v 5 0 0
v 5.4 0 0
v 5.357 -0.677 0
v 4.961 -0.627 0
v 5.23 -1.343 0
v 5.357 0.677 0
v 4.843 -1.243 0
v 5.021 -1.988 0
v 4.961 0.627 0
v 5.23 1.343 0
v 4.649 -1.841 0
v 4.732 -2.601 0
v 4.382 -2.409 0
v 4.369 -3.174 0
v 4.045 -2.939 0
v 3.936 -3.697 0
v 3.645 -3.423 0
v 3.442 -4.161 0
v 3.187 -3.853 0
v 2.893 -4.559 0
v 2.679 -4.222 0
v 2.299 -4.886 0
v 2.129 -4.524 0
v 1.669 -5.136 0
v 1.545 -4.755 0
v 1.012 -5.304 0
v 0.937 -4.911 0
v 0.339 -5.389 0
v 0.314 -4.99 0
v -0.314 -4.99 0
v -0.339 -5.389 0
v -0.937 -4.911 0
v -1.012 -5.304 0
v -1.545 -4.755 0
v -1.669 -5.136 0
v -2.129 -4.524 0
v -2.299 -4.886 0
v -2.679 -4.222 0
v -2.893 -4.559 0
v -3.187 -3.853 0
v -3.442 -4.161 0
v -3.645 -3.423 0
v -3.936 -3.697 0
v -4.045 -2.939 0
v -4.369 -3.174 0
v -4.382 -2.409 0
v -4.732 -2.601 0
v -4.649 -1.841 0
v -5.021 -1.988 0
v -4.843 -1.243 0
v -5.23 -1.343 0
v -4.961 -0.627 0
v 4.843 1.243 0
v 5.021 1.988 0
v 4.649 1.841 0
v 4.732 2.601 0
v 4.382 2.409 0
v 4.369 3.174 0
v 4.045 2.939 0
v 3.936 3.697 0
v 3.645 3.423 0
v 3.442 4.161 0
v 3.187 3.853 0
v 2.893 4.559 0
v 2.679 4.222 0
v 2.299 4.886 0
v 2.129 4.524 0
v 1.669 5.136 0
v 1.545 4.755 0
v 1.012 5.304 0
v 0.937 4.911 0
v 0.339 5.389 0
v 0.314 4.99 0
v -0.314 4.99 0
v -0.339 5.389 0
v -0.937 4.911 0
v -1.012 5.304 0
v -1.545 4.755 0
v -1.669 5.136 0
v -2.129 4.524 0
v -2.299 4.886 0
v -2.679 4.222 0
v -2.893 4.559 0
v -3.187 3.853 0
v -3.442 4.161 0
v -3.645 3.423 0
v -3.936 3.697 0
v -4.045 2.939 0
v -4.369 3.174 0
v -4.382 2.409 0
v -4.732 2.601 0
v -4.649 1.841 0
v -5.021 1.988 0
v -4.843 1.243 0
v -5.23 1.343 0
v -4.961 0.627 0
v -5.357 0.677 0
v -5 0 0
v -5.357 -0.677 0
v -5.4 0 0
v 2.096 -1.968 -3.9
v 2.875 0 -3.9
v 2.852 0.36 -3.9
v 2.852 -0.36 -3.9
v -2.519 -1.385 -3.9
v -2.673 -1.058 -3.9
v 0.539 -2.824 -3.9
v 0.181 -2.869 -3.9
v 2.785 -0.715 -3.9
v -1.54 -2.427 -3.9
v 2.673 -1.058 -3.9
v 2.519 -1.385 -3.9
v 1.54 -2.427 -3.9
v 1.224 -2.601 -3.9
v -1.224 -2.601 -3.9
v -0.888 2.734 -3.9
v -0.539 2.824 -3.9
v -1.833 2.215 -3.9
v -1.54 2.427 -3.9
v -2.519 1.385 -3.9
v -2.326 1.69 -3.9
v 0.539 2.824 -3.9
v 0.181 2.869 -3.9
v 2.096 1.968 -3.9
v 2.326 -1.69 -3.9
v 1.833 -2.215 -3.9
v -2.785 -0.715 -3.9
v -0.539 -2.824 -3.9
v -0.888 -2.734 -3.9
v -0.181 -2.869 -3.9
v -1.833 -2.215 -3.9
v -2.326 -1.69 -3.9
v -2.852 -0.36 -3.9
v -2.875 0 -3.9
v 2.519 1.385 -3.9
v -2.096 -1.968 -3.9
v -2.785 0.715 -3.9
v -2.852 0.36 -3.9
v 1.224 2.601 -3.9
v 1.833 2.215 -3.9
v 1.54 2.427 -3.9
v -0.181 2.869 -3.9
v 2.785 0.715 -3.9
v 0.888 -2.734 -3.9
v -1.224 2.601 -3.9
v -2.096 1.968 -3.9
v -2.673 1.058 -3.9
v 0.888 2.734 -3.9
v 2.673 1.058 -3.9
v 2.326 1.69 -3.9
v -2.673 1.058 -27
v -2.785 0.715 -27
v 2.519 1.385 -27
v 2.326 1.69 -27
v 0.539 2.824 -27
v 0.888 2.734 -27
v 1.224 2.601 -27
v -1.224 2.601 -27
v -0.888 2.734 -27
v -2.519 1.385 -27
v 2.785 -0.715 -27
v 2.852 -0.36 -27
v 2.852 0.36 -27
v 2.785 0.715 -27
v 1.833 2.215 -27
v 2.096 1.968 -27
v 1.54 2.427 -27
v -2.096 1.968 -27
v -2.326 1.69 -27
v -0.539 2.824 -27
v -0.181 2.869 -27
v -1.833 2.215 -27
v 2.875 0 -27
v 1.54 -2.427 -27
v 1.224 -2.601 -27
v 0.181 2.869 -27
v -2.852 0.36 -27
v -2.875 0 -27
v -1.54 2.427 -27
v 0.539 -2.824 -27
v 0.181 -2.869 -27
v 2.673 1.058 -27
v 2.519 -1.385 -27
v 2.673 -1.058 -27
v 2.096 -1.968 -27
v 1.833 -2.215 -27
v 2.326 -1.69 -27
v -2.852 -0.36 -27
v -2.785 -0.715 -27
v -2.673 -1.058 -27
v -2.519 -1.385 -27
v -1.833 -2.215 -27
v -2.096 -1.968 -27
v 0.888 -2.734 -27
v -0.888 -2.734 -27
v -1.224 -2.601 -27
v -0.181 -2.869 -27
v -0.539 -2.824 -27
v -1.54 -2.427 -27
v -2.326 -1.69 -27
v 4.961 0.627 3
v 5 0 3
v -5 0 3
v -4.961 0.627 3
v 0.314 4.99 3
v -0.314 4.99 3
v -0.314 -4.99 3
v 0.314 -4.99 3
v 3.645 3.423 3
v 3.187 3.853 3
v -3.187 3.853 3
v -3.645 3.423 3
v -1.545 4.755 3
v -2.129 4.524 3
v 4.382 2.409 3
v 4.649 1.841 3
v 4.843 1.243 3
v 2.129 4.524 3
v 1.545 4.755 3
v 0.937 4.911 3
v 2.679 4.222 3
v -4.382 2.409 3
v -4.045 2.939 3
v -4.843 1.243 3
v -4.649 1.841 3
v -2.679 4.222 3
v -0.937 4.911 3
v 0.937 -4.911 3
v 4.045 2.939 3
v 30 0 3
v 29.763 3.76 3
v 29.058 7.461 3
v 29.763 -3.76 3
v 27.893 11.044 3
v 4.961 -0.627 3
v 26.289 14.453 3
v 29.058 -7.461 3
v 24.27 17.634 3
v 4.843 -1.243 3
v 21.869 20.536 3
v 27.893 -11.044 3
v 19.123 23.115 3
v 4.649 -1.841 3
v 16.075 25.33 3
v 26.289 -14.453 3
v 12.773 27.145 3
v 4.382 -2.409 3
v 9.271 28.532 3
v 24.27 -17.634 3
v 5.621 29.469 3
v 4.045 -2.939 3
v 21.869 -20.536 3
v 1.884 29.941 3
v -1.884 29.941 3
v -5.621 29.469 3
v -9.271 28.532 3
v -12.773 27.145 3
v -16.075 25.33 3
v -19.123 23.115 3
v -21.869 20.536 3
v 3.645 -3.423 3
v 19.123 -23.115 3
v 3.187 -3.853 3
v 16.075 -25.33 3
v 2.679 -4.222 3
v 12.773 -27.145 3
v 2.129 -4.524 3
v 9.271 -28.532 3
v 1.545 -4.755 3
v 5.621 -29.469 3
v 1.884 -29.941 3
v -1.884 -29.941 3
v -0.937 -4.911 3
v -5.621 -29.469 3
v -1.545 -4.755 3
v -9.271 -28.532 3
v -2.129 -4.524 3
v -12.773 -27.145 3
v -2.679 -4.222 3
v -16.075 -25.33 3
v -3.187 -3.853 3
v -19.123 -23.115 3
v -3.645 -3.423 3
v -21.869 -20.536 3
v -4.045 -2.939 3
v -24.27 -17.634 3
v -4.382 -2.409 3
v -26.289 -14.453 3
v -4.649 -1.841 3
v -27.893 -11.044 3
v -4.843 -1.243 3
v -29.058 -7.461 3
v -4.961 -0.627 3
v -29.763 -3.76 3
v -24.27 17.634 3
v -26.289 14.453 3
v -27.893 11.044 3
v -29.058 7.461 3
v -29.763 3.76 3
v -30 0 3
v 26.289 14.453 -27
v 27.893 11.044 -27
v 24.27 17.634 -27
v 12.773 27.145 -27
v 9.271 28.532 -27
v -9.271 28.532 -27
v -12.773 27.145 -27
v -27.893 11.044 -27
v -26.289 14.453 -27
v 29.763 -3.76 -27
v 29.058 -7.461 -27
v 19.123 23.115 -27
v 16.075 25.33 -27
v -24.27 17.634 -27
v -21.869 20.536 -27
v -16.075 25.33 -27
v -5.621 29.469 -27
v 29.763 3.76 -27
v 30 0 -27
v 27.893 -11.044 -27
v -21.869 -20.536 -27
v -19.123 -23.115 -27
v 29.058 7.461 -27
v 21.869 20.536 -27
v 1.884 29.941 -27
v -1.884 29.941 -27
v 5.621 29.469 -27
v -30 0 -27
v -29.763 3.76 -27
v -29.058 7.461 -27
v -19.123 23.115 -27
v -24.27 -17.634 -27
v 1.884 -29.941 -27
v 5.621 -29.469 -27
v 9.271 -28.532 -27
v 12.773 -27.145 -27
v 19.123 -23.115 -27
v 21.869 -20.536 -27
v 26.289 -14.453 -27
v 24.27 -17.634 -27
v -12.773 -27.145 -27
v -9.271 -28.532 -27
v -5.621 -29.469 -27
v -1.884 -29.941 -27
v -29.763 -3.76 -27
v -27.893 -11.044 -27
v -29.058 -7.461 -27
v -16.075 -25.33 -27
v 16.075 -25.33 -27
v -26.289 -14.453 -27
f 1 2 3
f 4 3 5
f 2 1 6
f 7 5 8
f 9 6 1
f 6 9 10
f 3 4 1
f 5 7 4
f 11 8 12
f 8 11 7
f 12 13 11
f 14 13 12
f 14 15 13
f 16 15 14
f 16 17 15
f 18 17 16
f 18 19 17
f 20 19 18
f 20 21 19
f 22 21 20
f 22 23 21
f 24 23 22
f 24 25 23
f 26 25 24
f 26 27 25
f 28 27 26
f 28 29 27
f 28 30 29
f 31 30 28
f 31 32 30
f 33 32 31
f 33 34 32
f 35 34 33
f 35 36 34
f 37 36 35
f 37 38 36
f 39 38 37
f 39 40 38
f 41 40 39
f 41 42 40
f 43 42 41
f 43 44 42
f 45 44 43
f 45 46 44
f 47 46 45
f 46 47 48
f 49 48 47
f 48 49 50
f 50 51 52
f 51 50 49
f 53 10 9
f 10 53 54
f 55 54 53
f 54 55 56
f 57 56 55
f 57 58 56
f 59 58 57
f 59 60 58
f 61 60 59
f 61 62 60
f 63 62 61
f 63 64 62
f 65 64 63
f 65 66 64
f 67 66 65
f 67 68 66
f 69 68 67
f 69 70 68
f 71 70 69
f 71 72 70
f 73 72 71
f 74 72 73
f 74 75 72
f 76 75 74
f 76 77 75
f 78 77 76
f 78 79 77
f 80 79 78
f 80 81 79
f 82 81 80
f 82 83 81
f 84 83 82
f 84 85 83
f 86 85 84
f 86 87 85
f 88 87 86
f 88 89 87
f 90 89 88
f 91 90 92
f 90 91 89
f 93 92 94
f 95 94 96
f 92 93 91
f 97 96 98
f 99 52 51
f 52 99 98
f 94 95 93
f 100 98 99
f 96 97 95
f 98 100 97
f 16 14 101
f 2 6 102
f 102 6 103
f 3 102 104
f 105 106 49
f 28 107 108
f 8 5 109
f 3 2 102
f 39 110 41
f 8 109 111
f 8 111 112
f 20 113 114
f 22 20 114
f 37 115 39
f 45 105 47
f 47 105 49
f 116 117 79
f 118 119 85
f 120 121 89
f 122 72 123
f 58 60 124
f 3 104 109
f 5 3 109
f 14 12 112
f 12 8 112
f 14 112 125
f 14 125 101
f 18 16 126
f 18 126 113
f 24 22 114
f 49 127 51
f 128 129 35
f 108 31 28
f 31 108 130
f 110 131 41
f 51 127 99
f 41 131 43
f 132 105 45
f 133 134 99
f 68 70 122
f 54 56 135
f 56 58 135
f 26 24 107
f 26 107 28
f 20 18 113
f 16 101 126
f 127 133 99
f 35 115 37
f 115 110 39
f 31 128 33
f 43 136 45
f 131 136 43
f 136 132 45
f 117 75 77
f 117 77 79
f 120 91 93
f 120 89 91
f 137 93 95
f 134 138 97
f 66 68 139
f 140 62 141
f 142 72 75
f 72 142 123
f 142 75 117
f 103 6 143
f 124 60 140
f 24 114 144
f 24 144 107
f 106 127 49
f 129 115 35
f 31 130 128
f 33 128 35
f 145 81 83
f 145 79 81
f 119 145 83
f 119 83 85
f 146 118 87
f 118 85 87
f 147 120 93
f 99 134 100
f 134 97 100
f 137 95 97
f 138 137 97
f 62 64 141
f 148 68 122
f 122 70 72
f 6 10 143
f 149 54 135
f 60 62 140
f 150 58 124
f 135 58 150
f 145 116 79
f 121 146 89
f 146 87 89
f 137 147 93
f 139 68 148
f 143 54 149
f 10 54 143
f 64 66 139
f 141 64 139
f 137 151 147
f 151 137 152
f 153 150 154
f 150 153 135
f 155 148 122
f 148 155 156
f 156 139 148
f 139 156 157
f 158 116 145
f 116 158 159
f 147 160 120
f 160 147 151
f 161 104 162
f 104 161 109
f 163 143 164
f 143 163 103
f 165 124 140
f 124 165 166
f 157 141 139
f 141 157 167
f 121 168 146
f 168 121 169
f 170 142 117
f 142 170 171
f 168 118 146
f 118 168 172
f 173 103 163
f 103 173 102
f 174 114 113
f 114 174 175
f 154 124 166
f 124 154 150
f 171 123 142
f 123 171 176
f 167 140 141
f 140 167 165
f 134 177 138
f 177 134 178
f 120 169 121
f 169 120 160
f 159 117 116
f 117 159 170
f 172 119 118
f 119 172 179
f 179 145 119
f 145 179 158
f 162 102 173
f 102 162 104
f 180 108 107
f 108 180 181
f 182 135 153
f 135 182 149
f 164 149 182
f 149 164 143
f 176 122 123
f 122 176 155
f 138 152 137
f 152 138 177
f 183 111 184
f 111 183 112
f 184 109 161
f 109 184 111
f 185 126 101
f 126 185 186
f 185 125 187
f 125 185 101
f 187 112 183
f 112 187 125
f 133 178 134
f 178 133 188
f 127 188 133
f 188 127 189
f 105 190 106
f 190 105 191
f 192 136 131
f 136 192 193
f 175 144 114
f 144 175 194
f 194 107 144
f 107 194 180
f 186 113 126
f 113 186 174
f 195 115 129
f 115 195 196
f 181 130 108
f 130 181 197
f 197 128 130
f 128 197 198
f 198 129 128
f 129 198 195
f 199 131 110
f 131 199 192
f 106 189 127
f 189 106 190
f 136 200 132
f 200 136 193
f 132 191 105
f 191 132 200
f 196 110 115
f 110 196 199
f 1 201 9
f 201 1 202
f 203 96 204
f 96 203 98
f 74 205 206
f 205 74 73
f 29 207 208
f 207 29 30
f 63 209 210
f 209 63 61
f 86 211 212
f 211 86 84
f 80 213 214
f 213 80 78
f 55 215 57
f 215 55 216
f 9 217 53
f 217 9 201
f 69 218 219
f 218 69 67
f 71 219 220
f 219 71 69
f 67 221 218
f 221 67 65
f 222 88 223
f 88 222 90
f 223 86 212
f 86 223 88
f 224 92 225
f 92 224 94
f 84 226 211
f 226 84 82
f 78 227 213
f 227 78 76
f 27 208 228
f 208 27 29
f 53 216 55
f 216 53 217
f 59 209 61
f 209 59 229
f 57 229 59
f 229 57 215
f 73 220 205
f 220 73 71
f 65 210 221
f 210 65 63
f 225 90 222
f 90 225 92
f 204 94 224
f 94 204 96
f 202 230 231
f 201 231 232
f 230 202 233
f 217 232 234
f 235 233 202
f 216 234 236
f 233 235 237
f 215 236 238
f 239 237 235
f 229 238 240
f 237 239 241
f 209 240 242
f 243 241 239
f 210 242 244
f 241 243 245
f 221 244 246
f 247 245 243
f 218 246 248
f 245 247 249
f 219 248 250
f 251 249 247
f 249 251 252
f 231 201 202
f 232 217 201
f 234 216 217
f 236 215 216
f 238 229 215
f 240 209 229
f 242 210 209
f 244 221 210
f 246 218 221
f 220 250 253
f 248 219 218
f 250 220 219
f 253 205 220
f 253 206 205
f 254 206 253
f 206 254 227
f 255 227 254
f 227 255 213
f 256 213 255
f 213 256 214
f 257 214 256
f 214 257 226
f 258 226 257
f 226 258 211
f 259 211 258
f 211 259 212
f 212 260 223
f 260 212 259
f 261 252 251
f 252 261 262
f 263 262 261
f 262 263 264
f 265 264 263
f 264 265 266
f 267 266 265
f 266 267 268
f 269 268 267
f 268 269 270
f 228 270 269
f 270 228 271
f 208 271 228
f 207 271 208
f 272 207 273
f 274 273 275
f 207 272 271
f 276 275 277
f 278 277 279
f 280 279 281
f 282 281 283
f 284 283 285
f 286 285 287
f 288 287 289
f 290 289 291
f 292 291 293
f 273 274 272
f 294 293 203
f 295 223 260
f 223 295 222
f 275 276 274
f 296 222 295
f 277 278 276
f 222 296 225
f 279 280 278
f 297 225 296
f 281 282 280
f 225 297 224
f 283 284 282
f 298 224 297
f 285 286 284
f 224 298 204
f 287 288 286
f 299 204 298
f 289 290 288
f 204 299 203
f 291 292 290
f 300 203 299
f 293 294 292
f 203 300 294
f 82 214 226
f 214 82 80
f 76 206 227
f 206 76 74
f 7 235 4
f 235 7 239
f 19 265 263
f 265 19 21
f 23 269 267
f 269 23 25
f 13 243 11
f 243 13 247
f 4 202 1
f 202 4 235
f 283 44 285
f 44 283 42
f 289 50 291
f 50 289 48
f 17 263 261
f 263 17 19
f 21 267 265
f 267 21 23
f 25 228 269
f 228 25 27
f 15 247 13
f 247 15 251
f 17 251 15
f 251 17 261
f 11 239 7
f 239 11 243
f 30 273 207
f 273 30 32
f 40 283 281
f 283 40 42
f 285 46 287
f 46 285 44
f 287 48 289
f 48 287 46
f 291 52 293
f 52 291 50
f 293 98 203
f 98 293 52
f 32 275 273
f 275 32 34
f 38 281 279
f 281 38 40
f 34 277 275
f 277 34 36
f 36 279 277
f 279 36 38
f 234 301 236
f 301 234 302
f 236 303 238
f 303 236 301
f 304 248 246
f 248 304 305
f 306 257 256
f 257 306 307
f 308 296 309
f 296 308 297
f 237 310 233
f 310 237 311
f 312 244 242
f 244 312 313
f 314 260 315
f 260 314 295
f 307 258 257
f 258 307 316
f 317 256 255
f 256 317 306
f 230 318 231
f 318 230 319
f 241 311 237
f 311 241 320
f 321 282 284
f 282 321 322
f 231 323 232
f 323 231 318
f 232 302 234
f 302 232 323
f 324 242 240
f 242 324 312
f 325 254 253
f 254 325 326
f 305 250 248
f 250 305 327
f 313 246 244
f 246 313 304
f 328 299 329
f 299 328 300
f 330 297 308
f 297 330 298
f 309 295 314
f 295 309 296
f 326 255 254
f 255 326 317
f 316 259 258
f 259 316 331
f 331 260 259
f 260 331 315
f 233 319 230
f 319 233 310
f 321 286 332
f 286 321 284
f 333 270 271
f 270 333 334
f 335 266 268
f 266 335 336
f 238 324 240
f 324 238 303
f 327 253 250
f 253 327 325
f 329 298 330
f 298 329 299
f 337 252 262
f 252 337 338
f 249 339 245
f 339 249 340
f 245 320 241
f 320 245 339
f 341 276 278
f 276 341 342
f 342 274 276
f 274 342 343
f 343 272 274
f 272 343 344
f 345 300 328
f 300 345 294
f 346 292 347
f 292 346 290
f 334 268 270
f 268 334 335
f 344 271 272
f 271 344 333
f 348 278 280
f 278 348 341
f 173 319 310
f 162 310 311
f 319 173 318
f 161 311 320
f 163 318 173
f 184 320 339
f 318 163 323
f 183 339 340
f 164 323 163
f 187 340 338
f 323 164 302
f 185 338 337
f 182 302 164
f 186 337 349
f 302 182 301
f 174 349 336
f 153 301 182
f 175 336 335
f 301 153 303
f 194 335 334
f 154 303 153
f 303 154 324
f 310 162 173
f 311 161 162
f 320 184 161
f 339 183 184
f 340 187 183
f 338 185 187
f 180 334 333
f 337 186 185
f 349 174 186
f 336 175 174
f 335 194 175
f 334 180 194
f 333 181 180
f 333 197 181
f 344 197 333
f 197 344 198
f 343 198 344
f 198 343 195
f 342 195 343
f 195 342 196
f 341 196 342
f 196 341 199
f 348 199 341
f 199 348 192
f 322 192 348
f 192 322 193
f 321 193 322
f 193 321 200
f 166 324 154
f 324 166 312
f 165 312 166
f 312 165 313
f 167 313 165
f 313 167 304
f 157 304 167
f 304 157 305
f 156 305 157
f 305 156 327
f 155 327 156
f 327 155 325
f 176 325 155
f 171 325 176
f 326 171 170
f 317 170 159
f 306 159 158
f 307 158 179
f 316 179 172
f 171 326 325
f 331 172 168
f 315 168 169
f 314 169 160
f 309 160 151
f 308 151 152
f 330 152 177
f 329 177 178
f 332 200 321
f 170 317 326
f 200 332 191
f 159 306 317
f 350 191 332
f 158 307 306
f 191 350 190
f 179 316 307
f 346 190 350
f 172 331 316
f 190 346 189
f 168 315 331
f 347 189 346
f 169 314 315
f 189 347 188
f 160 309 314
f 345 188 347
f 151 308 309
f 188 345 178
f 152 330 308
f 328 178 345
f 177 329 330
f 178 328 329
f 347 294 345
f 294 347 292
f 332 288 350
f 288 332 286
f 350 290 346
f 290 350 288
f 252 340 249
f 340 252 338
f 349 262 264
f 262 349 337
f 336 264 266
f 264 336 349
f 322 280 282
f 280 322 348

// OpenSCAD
$fn = 50;

difference() {
	union() {
		translate(v = [0, 0, -27.0]) {
			cylinder(h = 30, r = 30.0);
		}
	}
	union() {
		translate(v = [0, 0, 0]) {
			rotate(a = [0, 0, 0]) {
				difference() {
					union() {
						translate(v = [0, 0, -30.0]) {
							cylinder(h = 30, r = 2.6);
						}
						translate(v = [0, 0, -3.9]) {
							cylinder(h = 3.9, r1 = 2.875, r2 = 5.4);
						}
						translate(v = [0, 0, -30.0]) {
							cylinder(h = 30, r = 2.875);
						}
						translate(v = [0, 0, -30.0]) {
							cylinder(h = 30, r = 2.6);
						}
					}
					union();
				}
			}
		}
		#cylinder(h = 3, r = 5.0);
	}
}
